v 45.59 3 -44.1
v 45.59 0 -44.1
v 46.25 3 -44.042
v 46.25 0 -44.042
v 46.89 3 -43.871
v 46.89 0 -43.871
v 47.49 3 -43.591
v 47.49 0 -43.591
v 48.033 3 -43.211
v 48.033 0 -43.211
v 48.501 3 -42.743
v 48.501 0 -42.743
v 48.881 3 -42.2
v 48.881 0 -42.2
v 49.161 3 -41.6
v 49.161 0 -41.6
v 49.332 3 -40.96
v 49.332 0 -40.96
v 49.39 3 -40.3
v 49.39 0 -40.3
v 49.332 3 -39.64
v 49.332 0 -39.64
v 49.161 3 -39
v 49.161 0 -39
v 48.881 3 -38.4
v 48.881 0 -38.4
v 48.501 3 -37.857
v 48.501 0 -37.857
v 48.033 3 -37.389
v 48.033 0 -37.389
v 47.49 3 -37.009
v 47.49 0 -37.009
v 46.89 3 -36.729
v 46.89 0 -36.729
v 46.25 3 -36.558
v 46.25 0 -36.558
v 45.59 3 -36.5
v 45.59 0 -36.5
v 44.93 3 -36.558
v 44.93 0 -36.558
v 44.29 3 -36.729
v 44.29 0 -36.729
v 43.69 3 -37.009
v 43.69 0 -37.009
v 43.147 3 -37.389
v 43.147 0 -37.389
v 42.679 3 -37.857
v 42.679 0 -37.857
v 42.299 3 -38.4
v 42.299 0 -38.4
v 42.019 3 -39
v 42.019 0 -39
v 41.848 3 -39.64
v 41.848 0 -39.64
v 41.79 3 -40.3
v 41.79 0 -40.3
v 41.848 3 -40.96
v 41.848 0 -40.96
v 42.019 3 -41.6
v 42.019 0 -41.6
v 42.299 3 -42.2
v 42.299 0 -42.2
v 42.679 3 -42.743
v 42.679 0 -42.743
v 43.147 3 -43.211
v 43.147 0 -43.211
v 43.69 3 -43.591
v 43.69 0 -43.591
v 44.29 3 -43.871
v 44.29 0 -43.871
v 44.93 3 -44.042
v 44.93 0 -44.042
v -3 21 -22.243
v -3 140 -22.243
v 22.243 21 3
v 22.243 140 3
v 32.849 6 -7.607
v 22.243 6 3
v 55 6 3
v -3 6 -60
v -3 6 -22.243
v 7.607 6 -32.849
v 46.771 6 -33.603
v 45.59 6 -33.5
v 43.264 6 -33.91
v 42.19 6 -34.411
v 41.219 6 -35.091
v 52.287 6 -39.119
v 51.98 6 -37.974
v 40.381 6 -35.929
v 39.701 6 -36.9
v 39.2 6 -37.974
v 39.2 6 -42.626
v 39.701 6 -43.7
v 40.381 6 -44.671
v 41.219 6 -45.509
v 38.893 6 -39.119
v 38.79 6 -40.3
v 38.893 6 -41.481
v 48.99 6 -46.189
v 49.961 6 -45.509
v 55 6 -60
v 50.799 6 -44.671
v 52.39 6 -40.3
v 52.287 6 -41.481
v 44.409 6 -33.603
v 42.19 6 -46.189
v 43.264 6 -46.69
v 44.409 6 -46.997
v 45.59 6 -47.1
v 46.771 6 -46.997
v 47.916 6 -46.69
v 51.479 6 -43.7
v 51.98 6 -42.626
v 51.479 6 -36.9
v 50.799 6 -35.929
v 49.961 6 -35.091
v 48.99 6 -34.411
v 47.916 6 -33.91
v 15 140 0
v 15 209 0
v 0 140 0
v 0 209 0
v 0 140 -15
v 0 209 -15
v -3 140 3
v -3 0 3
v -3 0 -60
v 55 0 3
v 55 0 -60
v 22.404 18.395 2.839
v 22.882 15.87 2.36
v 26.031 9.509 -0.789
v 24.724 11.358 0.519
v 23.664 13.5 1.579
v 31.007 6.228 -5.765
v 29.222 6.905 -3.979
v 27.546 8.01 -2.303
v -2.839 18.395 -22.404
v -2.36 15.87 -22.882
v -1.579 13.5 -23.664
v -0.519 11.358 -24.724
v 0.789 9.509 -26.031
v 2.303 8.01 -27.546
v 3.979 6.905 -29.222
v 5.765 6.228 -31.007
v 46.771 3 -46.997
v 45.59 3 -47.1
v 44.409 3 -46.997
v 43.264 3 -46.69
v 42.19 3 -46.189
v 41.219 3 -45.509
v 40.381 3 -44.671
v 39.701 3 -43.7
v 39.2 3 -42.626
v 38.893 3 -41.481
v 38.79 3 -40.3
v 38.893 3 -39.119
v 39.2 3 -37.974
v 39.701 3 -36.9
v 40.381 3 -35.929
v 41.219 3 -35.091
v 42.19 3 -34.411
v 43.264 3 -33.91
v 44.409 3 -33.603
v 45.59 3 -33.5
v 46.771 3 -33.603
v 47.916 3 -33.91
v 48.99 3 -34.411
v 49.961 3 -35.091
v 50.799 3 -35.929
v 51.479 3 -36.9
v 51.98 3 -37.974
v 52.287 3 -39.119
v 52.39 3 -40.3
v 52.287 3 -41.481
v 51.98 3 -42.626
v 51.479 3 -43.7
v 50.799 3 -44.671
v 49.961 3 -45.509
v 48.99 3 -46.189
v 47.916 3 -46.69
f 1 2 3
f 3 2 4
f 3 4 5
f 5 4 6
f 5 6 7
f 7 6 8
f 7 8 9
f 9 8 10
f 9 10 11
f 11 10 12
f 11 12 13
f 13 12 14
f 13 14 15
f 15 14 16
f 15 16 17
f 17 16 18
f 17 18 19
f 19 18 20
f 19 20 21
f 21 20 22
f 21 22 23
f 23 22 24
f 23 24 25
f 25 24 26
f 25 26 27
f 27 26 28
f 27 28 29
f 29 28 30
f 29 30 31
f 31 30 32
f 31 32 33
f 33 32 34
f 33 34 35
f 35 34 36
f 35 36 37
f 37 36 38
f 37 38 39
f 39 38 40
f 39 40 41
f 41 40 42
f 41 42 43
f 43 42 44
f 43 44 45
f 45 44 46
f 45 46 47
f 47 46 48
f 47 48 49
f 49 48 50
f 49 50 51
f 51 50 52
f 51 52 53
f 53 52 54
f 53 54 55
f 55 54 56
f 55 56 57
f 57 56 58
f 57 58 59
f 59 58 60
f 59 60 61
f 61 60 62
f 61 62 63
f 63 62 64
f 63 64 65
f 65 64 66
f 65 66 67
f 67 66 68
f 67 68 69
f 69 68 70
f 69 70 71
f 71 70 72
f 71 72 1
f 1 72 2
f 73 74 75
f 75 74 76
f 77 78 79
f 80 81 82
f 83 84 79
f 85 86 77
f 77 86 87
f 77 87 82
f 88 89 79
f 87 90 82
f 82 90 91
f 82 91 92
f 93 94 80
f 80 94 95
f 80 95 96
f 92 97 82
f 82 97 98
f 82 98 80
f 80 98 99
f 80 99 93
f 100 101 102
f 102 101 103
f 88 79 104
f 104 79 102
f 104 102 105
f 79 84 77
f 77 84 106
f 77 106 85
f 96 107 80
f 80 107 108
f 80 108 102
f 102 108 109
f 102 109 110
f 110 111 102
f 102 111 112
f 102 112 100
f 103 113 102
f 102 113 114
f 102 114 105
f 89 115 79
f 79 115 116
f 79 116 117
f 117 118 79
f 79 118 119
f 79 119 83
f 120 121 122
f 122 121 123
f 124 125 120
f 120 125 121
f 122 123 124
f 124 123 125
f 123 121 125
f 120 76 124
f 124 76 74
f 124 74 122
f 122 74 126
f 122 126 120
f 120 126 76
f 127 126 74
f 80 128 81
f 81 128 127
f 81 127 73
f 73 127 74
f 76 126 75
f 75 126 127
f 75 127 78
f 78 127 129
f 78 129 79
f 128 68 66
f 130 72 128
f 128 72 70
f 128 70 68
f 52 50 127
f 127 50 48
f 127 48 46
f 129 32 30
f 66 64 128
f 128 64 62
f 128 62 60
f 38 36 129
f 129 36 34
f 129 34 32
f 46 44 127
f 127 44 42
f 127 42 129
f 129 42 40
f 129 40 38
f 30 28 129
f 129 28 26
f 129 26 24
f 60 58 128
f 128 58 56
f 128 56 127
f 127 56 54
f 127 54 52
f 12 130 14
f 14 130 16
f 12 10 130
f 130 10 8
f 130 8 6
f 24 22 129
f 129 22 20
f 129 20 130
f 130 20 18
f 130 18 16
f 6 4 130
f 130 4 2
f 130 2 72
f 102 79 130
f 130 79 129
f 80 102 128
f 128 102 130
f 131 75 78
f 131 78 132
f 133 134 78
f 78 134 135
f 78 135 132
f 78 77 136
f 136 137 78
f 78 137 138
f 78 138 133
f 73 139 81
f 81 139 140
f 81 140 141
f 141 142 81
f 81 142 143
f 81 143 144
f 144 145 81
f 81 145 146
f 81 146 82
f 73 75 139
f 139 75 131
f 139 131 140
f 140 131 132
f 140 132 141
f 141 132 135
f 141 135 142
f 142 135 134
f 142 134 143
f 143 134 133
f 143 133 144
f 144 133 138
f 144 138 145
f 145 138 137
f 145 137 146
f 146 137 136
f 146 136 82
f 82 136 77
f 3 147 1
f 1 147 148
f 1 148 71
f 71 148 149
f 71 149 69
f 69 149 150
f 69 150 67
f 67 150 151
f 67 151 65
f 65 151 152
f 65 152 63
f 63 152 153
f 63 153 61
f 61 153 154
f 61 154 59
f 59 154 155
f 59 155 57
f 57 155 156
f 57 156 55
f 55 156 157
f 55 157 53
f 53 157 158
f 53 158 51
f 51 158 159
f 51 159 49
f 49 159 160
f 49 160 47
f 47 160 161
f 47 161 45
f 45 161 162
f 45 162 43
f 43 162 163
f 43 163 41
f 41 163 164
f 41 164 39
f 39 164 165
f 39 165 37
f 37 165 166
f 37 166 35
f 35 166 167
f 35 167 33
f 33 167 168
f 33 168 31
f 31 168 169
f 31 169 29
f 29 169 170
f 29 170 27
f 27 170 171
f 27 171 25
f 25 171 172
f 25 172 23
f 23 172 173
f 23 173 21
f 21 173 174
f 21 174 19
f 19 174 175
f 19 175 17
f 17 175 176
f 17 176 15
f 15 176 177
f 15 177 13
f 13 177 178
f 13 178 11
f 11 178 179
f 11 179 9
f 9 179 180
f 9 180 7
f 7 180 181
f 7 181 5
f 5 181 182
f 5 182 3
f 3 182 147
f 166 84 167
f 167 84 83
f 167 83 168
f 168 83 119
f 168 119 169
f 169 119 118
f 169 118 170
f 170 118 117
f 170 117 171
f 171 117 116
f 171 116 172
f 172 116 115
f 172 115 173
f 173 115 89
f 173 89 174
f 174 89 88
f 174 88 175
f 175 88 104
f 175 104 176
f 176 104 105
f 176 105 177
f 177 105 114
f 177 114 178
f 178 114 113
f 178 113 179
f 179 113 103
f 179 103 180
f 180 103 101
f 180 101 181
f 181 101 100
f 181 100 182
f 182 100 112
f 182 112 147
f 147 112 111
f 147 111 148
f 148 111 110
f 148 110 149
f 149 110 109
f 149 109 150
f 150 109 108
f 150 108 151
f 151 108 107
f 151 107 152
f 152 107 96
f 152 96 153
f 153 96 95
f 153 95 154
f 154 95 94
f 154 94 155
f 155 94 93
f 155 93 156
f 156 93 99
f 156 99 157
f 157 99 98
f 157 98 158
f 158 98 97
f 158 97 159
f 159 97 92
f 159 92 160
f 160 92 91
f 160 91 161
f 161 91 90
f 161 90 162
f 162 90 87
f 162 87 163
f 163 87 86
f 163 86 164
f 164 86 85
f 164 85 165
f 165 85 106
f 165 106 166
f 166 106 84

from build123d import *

# Parameters (mm, degrees)
BOSS_EXTRUDE3_DEPTH = 320
SKETCH8_W           = 15
SKETCH8_H           = 111
CUT_EXTRUDE4_DEPTH  = 321.702354216
BOSS_EXTRUDE5_DEPTH = 140
SKETCH4_W           = 58
SKETCH4_H           = 63
SKETCH4_R           = 3.8
BOSS_EXTRUDE4_DEPTH = 6
BOSS_EXTRUDE6_DEPTH = 15
CUT_EXTRUDE5_DEPTH  = 226.279401317
SKETCH12_R          = 6.8
CUT_EXTRUDE6_DEPTH  = 3


with BuildPart() as part:
    # Sketch1 → Boss-Extrude3 (new body)
    with BuildSketch(Plane(origin=(0, 0, 0), x_dir=(1, 0, 0), z_dir=(0, 1, 0))):
        Polygon((0, 0), (0, 15), (15, 0), align=None)
    extrude(amount=BOSS_EXTRUDE3_DEPTH)

    # Sketch8 → Cut-Extrude4 (cut, through all)
    with BuildSketch(Plane.XY):
        with Locations((7.5, 264.5)):
            Rectangle(SKETCH8_W, SKETCH8_H)
    extrude(amount=-CUT_EXTRUDE4_DEPTH, mode=Mode.SUBTRACT)

    # Sketch9 → Boss-Extrude5 (add)
    with BuildSketch(Plane.XZ):
        Polygon((-3, -22.242640687), (-3, 3), (22.242640687, 3), align=None)
    extrude(amount=-BOSS_EXTRUDE5_DEPTH)

    # Sketch4 → Boss-Extrude4 (add)
    with BuildSketch(Plane.XZ):
        with Locations((26, -28.5)):
            Rectangle(SKETCH4_W, SKETCH4_H)
        with Locations(Location((45.59, -40.3, 0), (0, 0, 270))):
            Circle(SKETCH4_R, mode=Mode.SUBTRACT)
    extrude(amount=-BOSS_EXTRUDE4_DEPTH)

    # Sketch10 → Boss-Extrude6 (add)
    with BuildSketch(Plane(origin=(0, 6, 0), x_dir=(1, 0, 0), z_dir=(0, 1, 0))):
        Polygon((-3, 22.242640687), (7.606601718, 32.849242405), (32.849242405, 7.606601718), (22.242640687, -3), align=None)
    extrude(amount=BOSS_EXTRUDE6_DEPTH)

    # Sketch11 → Cut-Extrude5 (cut, through all)
    with BuildSketch(Plane(origin=(12.621320344, 0, 12.621320344), x_dir=(0.7071067811865477, 0, -0.7071067811865475), z_dir=(0.7071067811865475, 0, 0.7071067811865477))):
        with BuildLine():
            Line((13.606601718, 21), (28.606601718, 21))
            Line((28.606601718, 21), (28.606601718, 6))
            ThreePointArc((28.606601718, 6), (18, 10.393398282), (13.606601718, 21))
        make_face()
    extrude(amount=-CUT_EXTRUDE5_DEPTH, mode=Mode.SUBTRACT)

    # Sketch12 → Cut-Extrude6 (cut)
    with BuildSketch(Plane(origin=(0, 6, 0), x_dir=(1, 0, 0), z_dir=(0, 1, 0))):
        with Locations(Location((45.59, 40.3, 0), (0, 0, 270))):
            Circle(SKETCH12_R)
    extrude(amount=-CUT_EXTRUDE6_DEPTH, mode=Mode.SUBTRACT)


solid = part.part
